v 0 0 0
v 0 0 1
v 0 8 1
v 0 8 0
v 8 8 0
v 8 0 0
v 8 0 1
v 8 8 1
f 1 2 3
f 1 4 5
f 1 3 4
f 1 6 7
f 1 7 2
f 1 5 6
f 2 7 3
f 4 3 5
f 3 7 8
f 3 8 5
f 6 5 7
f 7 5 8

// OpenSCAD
/* Warning, this is a very basic generator with a lot of approximation 
input data : [QFN, TRX, 8x8x1.0mm, 44, , D, C04-00103D]
generated by com.zoubworld.electronics.cad.model3d.Basic
Date : Sun Feb 15 10:50:48 CET 2026
*/

//body
color("black")
translate([0,0,0])
cube([8.0,8.0,1.0], center=false);
